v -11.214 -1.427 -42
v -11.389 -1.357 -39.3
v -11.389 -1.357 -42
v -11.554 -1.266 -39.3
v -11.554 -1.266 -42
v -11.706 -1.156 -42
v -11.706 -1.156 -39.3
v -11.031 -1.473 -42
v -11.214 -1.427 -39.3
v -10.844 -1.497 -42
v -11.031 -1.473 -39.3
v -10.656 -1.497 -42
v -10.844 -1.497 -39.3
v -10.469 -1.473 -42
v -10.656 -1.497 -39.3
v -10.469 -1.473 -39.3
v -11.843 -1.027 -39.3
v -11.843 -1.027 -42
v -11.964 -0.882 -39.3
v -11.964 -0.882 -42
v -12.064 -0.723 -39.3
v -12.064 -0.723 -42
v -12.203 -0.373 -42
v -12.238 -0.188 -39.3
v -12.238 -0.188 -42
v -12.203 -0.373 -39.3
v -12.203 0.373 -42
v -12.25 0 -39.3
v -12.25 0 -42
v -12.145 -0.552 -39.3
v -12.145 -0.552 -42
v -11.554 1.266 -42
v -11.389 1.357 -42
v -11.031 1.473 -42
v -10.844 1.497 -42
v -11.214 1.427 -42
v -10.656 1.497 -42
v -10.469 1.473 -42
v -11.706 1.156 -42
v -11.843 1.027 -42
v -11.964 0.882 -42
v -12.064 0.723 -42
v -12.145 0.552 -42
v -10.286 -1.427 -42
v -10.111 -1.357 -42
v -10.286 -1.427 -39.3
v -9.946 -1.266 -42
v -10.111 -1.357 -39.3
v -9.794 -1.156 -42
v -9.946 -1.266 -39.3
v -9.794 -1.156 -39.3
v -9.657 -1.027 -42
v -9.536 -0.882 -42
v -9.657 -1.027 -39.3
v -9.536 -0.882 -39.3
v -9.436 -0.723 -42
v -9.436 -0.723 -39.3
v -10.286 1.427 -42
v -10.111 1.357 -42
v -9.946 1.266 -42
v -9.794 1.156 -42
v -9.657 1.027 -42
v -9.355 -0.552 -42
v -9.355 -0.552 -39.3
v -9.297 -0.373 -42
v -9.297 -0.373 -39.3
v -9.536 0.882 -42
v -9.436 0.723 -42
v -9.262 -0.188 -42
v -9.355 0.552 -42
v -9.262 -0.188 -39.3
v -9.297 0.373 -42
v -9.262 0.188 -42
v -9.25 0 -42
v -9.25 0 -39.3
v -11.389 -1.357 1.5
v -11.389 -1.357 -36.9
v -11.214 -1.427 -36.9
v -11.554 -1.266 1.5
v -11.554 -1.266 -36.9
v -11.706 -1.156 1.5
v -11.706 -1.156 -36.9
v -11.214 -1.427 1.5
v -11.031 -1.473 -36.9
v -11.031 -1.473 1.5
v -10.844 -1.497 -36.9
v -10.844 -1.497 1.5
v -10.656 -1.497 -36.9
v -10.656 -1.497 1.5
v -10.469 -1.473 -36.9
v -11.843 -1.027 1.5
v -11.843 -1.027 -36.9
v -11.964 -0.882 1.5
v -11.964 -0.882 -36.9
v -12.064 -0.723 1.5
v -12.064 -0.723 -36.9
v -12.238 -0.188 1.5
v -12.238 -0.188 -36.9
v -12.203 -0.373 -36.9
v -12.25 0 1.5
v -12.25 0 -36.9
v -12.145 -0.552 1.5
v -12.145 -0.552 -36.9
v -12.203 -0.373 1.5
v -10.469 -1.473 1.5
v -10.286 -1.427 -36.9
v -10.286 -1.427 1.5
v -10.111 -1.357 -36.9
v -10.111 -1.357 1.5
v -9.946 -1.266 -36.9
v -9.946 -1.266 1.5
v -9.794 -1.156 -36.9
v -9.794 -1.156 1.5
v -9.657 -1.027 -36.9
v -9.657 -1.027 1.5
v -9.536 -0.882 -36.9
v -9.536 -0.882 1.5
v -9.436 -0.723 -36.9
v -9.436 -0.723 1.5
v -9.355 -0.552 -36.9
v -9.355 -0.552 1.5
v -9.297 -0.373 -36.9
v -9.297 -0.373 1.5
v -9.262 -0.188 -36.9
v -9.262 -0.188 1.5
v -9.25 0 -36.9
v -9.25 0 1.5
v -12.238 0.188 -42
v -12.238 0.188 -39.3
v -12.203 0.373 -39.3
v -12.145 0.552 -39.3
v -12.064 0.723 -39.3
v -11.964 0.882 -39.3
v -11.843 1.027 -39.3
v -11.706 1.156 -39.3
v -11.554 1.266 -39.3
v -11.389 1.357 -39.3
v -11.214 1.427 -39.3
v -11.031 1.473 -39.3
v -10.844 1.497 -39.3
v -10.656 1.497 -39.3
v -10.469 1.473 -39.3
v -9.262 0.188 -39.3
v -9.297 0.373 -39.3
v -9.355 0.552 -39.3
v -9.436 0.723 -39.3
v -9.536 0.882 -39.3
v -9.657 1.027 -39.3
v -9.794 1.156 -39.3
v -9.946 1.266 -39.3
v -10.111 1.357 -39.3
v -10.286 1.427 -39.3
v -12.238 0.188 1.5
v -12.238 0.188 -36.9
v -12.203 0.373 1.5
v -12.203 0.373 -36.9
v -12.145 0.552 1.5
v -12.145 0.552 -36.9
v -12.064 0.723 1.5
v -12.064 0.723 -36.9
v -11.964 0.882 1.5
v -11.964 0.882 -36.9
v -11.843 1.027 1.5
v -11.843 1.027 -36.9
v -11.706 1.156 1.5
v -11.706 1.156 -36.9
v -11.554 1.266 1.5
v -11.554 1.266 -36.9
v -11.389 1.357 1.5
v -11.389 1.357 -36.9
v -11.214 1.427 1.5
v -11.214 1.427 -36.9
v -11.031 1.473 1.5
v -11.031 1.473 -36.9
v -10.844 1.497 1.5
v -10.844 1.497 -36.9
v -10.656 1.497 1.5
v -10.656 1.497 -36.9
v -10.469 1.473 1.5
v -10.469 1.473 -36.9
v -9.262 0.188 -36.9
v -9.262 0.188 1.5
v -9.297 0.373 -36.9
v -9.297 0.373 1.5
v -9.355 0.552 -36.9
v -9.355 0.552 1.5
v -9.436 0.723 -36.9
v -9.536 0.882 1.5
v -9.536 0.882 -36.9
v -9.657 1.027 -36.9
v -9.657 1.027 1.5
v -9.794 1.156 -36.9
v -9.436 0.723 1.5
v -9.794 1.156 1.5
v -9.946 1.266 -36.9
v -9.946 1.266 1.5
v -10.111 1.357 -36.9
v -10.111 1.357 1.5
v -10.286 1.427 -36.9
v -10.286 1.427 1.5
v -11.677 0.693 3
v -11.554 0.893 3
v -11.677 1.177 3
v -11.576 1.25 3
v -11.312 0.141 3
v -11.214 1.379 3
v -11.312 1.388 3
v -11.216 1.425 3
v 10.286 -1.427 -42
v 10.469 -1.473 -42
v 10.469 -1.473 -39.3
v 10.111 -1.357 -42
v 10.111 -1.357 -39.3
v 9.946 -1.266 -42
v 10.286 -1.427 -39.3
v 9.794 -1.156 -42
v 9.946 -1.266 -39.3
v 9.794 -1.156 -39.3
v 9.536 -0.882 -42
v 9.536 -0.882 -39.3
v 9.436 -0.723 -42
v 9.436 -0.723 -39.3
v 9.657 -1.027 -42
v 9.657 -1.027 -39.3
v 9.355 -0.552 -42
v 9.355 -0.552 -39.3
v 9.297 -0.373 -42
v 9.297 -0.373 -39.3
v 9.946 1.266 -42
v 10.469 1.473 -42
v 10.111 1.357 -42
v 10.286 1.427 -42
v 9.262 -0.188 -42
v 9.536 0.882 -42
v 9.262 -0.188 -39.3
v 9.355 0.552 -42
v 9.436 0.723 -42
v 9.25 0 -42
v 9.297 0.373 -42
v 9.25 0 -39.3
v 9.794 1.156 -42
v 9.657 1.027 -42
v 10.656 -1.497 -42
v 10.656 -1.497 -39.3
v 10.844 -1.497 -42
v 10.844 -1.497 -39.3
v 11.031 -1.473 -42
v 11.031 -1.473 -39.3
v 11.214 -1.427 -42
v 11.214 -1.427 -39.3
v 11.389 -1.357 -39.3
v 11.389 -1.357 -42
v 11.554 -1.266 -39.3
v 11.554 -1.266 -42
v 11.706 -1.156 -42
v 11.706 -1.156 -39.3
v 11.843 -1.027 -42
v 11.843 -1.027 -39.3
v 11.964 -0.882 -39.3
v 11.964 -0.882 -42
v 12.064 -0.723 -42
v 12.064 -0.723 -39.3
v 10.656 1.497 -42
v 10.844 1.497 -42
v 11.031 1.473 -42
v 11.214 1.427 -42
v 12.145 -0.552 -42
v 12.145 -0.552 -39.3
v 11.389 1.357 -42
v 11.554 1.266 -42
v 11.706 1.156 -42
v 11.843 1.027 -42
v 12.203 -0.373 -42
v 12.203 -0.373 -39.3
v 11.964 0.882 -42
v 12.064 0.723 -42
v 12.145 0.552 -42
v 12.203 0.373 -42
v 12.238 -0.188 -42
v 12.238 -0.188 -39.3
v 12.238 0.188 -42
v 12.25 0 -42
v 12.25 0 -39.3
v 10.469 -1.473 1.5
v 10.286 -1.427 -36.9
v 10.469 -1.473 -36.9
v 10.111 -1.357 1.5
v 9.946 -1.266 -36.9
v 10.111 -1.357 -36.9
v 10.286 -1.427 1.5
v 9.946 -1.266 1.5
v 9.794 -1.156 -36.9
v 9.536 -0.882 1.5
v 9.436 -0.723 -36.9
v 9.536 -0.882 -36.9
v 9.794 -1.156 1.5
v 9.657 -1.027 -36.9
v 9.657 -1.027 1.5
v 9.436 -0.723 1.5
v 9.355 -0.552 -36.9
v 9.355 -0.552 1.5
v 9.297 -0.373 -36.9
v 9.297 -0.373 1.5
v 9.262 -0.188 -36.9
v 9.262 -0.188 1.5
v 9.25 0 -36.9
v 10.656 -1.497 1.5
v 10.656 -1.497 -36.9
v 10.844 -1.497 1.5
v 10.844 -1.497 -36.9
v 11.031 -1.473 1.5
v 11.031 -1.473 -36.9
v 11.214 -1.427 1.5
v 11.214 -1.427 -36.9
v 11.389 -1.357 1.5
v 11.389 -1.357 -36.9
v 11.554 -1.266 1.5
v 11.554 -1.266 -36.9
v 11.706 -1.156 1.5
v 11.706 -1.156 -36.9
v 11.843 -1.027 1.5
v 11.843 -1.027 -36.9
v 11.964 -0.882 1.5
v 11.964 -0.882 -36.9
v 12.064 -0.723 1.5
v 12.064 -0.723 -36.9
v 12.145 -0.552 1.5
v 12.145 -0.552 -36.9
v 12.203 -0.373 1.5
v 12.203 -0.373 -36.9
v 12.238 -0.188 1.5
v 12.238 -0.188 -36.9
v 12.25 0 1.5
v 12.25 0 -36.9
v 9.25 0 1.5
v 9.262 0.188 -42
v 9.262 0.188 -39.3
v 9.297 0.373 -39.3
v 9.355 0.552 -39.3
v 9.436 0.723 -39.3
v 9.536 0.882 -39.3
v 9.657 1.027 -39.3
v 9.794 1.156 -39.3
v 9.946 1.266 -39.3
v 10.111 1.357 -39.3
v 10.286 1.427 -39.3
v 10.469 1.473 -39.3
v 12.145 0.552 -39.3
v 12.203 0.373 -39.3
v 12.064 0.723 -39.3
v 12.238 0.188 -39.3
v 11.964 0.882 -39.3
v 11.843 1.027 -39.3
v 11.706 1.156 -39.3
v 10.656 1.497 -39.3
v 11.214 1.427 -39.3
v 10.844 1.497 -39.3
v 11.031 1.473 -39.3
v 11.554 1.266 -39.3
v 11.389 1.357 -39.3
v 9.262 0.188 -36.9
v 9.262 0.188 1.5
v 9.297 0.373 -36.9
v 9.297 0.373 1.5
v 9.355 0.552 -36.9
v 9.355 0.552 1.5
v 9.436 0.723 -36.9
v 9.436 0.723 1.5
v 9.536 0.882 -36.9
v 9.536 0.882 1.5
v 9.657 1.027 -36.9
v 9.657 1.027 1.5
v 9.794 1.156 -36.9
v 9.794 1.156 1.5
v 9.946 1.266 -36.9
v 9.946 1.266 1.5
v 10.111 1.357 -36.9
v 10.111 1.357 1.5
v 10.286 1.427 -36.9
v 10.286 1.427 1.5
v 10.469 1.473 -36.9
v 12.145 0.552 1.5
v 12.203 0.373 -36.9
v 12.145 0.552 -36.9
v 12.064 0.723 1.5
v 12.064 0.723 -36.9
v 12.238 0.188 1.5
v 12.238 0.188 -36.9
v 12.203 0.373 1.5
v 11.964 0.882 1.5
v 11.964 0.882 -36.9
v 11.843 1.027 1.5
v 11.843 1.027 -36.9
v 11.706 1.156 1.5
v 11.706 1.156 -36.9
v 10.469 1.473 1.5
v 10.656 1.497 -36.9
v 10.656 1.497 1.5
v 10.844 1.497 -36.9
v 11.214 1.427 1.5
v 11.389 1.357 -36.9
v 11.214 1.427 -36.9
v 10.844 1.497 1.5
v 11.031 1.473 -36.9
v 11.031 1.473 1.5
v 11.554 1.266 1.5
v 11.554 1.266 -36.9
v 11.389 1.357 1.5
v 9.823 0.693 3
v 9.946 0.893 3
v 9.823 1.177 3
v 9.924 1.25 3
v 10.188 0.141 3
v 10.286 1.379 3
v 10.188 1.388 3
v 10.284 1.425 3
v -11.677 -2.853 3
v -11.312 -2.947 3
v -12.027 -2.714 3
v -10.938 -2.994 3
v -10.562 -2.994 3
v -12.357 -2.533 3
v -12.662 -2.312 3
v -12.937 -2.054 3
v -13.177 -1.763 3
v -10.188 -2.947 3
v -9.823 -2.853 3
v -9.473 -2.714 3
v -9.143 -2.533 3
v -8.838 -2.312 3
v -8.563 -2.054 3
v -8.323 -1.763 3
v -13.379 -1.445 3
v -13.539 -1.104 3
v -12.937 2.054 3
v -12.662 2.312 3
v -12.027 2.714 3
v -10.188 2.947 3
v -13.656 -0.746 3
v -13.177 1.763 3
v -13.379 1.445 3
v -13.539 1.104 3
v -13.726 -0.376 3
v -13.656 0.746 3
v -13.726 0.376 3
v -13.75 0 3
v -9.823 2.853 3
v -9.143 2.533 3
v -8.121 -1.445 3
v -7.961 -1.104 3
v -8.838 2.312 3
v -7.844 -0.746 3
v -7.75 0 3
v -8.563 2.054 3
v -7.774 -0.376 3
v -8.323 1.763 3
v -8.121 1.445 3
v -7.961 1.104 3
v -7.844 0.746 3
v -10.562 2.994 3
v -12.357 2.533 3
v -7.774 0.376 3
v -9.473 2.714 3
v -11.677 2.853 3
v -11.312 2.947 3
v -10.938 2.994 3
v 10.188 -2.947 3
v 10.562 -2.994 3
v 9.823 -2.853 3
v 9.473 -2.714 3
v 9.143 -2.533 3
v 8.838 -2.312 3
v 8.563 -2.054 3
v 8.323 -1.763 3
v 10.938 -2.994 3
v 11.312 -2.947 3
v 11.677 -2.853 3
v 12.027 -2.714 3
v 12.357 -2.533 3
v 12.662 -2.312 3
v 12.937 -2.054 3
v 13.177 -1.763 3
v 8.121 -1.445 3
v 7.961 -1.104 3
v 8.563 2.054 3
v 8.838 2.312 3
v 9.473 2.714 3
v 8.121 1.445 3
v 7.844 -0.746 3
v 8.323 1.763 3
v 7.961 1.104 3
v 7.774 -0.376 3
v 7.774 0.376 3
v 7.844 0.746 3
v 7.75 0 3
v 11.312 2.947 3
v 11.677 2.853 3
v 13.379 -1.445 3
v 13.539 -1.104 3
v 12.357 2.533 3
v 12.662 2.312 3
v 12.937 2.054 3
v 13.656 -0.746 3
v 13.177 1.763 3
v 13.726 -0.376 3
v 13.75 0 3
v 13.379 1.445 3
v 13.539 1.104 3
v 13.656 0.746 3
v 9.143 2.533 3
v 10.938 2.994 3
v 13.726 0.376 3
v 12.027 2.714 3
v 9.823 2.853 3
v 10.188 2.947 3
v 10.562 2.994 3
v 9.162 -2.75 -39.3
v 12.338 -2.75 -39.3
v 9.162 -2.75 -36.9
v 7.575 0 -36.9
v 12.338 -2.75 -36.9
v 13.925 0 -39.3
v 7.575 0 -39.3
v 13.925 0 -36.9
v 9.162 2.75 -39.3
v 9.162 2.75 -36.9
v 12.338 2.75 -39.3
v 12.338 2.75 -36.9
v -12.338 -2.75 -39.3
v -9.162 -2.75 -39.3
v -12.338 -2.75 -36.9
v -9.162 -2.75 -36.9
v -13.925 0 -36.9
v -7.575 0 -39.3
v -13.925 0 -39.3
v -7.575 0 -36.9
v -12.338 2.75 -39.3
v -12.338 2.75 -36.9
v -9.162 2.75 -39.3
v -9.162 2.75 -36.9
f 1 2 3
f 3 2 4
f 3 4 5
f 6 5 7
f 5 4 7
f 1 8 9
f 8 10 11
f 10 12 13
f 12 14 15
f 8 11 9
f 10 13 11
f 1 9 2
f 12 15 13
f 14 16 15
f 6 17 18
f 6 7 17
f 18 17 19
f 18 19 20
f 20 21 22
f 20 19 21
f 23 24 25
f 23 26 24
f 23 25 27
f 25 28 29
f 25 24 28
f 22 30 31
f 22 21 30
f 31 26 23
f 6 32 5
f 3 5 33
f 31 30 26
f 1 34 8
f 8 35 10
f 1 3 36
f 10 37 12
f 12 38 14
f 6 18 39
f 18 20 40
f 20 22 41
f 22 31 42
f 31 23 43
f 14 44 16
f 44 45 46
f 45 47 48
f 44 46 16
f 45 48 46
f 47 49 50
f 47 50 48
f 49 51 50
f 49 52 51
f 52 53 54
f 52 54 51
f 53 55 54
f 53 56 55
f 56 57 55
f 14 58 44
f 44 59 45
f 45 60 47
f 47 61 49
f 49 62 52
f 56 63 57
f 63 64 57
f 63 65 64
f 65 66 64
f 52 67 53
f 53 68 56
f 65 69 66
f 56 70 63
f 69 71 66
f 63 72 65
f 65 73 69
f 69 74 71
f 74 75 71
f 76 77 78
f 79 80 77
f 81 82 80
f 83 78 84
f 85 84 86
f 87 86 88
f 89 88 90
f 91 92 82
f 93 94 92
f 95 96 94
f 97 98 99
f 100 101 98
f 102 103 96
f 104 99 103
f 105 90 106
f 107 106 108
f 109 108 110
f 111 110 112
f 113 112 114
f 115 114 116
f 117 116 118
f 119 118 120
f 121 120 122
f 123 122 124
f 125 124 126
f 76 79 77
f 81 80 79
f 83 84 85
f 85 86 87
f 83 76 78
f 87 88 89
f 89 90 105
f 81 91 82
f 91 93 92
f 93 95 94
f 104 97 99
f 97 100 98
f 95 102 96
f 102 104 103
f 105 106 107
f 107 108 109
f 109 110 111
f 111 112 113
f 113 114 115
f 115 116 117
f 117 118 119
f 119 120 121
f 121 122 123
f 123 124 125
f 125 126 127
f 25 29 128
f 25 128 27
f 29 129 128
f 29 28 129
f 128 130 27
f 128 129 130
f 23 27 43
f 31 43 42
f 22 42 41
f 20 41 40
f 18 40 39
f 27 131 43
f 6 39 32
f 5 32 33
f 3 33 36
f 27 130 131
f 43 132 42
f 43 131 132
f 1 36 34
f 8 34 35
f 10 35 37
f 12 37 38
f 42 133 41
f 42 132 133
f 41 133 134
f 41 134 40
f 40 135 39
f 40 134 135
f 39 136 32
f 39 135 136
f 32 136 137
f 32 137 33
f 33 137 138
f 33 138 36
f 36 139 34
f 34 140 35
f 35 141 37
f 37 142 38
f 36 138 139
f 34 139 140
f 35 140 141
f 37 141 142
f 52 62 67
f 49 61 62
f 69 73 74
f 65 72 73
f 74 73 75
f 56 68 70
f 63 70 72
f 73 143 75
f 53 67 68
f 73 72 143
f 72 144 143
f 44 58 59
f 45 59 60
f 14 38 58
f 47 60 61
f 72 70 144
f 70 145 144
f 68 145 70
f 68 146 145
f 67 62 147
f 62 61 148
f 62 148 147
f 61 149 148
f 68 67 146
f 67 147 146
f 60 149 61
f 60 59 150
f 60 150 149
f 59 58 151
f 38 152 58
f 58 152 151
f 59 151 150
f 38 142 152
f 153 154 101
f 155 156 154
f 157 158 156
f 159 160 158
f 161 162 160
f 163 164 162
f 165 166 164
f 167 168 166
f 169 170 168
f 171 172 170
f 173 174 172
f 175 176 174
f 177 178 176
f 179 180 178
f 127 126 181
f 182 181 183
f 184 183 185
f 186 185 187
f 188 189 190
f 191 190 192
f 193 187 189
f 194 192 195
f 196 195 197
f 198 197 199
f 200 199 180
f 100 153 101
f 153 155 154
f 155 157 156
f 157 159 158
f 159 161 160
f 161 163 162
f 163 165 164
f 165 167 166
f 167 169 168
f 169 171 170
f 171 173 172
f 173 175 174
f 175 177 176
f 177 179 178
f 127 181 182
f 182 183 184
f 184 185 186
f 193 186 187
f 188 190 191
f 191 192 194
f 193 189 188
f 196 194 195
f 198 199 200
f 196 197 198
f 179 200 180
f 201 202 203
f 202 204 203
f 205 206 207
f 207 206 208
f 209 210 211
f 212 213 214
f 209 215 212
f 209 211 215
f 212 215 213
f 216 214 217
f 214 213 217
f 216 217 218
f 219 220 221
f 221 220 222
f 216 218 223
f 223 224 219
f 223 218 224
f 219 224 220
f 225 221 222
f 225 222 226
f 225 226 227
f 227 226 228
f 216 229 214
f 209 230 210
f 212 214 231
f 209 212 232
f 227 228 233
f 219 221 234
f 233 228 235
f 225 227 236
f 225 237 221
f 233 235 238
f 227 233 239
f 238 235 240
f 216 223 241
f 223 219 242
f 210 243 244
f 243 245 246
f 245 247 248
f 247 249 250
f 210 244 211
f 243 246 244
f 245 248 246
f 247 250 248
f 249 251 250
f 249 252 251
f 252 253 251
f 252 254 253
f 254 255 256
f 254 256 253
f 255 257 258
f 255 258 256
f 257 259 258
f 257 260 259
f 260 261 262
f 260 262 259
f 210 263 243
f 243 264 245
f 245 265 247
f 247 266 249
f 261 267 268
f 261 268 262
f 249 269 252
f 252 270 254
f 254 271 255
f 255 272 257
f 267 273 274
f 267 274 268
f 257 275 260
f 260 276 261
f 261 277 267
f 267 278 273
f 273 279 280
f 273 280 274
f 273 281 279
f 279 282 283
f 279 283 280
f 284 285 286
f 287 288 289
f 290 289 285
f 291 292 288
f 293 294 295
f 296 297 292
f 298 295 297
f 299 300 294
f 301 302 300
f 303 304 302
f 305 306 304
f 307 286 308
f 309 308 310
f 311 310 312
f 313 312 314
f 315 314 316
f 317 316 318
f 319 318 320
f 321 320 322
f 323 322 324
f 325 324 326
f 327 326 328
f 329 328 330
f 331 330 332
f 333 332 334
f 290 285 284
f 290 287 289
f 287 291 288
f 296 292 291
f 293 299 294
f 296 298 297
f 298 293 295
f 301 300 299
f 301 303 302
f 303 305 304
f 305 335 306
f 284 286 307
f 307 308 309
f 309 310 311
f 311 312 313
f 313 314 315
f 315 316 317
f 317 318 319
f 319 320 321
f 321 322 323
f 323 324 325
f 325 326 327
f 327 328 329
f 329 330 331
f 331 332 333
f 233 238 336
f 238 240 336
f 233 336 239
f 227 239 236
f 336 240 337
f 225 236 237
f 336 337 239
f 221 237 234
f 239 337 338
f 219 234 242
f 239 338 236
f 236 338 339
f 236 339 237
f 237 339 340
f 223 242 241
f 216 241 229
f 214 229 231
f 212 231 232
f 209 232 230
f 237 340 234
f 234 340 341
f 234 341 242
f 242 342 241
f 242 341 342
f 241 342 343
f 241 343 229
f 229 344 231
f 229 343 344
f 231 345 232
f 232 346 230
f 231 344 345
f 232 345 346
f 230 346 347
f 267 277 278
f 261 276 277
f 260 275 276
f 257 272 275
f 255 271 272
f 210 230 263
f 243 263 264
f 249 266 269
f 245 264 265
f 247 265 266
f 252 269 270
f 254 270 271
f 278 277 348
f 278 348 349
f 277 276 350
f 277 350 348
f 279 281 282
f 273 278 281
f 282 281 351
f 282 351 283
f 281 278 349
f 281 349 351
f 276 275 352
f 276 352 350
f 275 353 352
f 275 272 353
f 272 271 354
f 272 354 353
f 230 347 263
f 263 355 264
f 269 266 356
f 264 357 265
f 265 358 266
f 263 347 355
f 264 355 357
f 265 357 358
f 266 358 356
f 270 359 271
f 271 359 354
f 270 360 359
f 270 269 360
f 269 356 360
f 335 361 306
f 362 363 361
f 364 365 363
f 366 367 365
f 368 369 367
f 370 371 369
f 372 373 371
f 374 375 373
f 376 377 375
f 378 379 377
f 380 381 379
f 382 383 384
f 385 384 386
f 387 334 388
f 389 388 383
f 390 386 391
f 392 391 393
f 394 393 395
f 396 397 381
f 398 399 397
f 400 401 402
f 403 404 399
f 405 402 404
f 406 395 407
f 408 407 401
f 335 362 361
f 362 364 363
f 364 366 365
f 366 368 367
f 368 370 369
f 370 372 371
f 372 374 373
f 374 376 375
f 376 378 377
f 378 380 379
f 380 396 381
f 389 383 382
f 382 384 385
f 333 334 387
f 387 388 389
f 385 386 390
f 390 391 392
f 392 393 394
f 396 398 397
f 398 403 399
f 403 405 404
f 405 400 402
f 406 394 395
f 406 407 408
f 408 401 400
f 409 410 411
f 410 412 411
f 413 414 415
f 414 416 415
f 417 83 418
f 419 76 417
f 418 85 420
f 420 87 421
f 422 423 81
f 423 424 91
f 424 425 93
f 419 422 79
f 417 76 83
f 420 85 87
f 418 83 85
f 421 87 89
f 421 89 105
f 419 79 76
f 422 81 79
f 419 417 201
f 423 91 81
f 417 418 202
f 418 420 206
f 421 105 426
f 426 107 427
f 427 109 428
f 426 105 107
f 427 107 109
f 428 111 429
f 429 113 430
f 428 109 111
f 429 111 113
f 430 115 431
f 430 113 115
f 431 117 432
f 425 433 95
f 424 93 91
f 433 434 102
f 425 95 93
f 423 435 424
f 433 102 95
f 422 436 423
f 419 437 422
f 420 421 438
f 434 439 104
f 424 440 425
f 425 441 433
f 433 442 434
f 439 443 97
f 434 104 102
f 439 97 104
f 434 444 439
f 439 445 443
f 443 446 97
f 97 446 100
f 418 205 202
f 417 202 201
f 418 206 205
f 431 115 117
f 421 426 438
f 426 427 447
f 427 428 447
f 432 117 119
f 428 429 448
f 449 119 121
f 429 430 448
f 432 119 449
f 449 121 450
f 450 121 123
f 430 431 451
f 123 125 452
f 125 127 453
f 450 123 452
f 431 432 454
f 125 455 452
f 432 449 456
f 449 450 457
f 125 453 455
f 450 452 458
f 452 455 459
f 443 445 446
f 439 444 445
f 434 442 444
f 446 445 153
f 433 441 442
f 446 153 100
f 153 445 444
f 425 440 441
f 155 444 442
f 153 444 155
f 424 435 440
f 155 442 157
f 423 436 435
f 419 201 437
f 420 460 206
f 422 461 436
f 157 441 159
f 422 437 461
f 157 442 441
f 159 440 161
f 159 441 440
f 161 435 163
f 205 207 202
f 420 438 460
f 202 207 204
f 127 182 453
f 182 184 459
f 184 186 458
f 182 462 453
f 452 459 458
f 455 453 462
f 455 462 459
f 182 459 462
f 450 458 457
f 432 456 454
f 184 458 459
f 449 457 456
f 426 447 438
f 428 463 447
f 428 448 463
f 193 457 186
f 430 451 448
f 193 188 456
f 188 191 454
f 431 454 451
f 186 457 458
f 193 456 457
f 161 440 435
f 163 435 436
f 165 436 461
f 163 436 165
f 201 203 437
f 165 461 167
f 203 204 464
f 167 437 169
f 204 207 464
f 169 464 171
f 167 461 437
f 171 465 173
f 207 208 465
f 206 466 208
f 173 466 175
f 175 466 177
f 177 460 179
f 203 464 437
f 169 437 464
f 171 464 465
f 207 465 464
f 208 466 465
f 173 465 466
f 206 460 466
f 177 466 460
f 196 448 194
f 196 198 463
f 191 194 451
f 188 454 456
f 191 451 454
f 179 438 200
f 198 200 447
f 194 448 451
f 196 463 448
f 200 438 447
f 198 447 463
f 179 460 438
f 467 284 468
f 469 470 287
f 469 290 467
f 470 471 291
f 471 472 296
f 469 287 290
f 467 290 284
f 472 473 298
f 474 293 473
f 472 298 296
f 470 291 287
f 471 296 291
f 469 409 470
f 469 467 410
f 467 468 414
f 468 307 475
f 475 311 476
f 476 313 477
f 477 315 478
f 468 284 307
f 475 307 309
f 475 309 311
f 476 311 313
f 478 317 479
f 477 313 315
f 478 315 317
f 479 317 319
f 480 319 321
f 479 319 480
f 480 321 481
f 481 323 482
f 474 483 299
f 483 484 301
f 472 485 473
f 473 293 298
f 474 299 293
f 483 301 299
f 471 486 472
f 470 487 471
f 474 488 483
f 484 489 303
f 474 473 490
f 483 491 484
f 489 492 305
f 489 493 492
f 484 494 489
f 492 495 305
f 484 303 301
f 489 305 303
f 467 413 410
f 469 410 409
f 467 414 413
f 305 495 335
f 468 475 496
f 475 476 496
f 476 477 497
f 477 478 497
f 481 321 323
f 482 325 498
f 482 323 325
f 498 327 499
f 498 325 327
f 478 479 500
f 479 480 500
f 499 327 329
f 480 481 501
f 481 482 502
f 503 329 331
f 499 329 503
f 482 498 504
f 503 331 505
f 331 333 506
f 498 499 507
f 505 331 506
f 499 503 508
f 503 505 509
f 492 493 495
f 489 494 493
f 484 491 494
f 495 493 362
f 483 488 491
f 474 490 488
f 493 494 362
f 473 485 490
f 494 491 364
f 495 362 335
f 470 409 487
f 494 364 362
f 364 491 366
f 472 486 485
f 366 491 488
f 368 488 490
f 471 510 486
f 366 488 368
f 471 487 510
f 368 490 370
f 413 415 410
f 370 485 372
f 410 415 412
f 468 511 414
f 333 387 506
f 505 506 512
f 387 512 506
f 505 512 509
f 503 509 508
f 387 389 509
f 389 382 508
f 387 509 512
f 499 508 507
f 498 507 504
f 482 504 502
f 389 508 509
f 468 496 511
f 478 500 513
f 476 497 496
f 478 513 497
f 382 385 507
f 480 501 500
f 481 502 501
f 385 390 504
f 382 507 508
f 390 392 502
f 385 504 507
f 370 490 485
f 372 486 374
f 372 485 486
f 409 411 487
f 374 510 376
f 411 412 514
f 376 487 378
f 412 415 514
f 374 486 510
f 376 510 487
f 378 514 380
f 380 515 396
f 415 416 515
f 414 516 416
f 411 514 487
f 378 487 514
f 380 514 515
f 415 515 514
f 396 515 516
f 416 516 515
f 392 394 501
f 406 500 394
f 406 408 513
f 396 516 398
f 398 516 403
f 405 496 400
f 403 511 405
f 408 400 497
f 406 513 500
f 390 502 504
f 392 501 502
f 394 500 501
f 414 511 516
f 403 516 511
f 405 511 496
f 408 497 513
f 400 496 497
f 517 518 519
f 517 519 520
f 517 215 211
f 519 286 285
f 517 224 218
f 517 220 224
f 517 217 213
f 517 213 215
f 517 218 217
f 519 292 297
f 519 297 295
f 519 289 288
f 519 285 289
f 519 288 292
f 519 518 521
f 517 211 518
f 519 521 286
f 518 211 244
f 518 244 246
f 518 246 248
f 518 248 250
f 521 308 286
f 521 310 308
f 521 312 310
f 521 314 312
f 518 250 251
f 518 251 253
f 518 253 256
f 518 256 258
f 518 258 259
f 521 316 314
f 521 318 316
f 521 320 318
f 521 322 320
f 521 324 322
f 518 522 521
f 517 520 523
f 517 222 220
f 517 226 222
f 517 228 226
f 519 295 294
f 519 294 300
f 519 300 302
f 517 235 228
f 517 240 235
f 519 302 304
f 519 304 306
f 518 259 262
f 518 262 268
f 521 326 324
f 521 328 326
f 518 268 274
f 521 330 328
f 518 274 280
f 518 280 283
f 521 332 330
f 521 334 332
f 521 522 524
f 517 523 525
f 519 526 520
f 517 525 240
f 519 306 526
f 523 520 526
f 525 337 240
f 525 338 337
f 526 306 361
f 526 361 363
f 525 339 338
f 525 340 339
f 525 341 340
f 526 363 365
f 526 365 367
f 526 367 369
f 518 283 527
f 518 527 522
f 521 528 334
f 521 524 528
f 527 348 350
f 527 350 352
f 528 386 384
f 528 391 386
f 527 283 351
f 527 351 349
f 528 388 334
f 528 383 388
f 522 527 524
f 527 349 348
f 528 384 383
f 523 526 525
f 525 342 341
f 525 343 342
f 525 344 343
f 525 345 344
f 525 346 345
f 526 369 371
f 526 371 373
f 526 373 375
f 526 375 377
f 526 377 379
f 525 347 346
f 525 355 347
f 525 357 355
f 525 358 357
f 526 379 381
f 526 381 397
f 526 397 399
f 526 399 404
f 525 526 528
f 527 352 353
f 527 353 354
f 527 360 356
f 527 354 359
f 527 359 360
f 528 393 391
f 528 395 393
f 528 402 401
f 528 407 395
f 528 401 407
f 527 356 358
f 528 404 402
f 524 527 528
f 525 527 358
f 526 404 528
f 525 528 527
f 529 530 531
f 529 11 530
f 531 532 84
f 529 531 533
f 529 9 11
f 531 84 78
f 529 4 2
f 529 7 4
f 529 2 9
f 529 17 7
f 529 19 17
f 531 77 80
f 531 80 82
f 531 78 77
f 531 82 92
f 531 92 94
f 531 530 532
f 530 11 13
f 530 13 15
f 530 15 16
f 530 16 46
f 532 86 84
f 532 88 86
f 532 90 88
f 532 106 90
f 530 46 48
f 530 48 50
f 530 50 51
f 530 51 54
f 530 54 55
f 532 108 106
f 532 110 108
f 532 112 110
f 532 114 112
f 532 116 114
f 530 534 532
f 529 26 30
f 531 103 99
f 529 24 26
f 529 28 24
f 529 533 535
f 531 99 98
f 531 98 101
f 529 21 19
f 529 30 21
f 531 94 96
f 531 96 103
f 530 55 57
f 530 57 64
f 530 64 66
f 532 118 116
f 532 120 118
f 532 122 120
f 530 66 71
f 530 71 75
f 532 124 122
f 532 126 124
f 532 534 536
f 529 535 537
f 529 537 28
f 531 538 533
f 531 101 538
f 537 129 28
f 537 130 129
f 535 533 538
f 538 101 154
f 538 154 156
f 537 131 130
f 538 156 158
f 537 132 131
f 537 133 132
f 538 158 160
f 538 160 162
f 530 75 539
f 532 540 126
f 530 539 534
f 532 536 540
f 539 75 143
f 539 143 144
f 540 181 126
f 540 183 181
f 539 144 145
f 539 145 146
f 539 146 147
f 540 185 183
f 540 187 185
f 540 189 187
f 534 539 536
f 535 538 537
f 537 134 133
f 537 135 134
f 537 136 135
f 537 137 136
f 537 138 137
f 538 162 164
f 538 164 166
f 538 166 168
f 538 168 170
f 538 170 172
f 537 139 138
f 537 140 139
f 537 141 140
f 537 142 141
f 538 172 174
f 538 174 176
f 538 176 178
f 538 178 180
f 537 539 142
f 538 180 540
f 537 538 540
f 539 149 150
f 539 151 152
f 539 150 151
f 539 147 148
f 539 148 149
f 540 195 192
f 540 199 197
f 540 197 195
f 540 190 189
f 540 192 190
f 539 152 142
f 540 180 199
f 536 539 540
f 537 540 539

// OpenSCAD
$fn = 50;

difference() {
	union() {
		translate(v = [-10.75, 0, 3]) {
			rotate(a = [0, 0, 0]) {
				difference() {
					union() {
						translate(v = [0, 0, -45.0]) {
							cylinder(h = 45, r = 1.5);
						}
						translate(v = [0, 0, -1.5]) {
							cylinder(h = 1.5, r1 = 1.5, r2 = 3);
						}
					}
					union();
				}
			}
		}
		translate(v = [-10.75, 0, -39.3]) {
			rotate(a = [0, 0, 0]) {
				difference() {
					union() {
						linear_extrude(height = 2.4) {
							polygon(points = [[3.1754264805429417, 0.0], [1.5877132402714713, 2.75], [-1.5877132402714702, 2.7500000000000004], [-3.1754264805429417, 3.888775875324659e-16], [-1.5877132402714722, -2.7499999999999996], [1.5877132402714687, -2.7500000000000013]]);
						}
					}
					union();
				}
			}
		}
		translate(v = [10.75, 0, 3]) {
			rotate(a = [0, 0, 0]) {
				difference() {
					union() {
						translate(v = [0, 0, -45.0]) {
							cylinder(h = 45, r = 1.5);
						}
						translate(v = [0, 0, -1.5]) {
							cylinder(h = 1.5, r1 = 1.5, r2 = 3);
						}
					}
					union();
				}
			}
		}
		translate(v = [10.75, 0, -39.3]) {
			rotate(a = [0, 0, 0]) {
				difference() {
					union() {
						linear_extrude(height = 2.4) {
							polygon(points = [[3.1754264805429417, 0.0], [1.5877132402714713, 2.75], [-1.5877132402714702, 2.7500000000000004], [-3.1754264805429417, 3.888775875324659e-16], [-1.5877132402714722, -2.7499999999999996], [1.5877132402714687, -2.7500000000000013]]);
						}
					}
					union();
				}
			}
		}
	}
	union();
}
